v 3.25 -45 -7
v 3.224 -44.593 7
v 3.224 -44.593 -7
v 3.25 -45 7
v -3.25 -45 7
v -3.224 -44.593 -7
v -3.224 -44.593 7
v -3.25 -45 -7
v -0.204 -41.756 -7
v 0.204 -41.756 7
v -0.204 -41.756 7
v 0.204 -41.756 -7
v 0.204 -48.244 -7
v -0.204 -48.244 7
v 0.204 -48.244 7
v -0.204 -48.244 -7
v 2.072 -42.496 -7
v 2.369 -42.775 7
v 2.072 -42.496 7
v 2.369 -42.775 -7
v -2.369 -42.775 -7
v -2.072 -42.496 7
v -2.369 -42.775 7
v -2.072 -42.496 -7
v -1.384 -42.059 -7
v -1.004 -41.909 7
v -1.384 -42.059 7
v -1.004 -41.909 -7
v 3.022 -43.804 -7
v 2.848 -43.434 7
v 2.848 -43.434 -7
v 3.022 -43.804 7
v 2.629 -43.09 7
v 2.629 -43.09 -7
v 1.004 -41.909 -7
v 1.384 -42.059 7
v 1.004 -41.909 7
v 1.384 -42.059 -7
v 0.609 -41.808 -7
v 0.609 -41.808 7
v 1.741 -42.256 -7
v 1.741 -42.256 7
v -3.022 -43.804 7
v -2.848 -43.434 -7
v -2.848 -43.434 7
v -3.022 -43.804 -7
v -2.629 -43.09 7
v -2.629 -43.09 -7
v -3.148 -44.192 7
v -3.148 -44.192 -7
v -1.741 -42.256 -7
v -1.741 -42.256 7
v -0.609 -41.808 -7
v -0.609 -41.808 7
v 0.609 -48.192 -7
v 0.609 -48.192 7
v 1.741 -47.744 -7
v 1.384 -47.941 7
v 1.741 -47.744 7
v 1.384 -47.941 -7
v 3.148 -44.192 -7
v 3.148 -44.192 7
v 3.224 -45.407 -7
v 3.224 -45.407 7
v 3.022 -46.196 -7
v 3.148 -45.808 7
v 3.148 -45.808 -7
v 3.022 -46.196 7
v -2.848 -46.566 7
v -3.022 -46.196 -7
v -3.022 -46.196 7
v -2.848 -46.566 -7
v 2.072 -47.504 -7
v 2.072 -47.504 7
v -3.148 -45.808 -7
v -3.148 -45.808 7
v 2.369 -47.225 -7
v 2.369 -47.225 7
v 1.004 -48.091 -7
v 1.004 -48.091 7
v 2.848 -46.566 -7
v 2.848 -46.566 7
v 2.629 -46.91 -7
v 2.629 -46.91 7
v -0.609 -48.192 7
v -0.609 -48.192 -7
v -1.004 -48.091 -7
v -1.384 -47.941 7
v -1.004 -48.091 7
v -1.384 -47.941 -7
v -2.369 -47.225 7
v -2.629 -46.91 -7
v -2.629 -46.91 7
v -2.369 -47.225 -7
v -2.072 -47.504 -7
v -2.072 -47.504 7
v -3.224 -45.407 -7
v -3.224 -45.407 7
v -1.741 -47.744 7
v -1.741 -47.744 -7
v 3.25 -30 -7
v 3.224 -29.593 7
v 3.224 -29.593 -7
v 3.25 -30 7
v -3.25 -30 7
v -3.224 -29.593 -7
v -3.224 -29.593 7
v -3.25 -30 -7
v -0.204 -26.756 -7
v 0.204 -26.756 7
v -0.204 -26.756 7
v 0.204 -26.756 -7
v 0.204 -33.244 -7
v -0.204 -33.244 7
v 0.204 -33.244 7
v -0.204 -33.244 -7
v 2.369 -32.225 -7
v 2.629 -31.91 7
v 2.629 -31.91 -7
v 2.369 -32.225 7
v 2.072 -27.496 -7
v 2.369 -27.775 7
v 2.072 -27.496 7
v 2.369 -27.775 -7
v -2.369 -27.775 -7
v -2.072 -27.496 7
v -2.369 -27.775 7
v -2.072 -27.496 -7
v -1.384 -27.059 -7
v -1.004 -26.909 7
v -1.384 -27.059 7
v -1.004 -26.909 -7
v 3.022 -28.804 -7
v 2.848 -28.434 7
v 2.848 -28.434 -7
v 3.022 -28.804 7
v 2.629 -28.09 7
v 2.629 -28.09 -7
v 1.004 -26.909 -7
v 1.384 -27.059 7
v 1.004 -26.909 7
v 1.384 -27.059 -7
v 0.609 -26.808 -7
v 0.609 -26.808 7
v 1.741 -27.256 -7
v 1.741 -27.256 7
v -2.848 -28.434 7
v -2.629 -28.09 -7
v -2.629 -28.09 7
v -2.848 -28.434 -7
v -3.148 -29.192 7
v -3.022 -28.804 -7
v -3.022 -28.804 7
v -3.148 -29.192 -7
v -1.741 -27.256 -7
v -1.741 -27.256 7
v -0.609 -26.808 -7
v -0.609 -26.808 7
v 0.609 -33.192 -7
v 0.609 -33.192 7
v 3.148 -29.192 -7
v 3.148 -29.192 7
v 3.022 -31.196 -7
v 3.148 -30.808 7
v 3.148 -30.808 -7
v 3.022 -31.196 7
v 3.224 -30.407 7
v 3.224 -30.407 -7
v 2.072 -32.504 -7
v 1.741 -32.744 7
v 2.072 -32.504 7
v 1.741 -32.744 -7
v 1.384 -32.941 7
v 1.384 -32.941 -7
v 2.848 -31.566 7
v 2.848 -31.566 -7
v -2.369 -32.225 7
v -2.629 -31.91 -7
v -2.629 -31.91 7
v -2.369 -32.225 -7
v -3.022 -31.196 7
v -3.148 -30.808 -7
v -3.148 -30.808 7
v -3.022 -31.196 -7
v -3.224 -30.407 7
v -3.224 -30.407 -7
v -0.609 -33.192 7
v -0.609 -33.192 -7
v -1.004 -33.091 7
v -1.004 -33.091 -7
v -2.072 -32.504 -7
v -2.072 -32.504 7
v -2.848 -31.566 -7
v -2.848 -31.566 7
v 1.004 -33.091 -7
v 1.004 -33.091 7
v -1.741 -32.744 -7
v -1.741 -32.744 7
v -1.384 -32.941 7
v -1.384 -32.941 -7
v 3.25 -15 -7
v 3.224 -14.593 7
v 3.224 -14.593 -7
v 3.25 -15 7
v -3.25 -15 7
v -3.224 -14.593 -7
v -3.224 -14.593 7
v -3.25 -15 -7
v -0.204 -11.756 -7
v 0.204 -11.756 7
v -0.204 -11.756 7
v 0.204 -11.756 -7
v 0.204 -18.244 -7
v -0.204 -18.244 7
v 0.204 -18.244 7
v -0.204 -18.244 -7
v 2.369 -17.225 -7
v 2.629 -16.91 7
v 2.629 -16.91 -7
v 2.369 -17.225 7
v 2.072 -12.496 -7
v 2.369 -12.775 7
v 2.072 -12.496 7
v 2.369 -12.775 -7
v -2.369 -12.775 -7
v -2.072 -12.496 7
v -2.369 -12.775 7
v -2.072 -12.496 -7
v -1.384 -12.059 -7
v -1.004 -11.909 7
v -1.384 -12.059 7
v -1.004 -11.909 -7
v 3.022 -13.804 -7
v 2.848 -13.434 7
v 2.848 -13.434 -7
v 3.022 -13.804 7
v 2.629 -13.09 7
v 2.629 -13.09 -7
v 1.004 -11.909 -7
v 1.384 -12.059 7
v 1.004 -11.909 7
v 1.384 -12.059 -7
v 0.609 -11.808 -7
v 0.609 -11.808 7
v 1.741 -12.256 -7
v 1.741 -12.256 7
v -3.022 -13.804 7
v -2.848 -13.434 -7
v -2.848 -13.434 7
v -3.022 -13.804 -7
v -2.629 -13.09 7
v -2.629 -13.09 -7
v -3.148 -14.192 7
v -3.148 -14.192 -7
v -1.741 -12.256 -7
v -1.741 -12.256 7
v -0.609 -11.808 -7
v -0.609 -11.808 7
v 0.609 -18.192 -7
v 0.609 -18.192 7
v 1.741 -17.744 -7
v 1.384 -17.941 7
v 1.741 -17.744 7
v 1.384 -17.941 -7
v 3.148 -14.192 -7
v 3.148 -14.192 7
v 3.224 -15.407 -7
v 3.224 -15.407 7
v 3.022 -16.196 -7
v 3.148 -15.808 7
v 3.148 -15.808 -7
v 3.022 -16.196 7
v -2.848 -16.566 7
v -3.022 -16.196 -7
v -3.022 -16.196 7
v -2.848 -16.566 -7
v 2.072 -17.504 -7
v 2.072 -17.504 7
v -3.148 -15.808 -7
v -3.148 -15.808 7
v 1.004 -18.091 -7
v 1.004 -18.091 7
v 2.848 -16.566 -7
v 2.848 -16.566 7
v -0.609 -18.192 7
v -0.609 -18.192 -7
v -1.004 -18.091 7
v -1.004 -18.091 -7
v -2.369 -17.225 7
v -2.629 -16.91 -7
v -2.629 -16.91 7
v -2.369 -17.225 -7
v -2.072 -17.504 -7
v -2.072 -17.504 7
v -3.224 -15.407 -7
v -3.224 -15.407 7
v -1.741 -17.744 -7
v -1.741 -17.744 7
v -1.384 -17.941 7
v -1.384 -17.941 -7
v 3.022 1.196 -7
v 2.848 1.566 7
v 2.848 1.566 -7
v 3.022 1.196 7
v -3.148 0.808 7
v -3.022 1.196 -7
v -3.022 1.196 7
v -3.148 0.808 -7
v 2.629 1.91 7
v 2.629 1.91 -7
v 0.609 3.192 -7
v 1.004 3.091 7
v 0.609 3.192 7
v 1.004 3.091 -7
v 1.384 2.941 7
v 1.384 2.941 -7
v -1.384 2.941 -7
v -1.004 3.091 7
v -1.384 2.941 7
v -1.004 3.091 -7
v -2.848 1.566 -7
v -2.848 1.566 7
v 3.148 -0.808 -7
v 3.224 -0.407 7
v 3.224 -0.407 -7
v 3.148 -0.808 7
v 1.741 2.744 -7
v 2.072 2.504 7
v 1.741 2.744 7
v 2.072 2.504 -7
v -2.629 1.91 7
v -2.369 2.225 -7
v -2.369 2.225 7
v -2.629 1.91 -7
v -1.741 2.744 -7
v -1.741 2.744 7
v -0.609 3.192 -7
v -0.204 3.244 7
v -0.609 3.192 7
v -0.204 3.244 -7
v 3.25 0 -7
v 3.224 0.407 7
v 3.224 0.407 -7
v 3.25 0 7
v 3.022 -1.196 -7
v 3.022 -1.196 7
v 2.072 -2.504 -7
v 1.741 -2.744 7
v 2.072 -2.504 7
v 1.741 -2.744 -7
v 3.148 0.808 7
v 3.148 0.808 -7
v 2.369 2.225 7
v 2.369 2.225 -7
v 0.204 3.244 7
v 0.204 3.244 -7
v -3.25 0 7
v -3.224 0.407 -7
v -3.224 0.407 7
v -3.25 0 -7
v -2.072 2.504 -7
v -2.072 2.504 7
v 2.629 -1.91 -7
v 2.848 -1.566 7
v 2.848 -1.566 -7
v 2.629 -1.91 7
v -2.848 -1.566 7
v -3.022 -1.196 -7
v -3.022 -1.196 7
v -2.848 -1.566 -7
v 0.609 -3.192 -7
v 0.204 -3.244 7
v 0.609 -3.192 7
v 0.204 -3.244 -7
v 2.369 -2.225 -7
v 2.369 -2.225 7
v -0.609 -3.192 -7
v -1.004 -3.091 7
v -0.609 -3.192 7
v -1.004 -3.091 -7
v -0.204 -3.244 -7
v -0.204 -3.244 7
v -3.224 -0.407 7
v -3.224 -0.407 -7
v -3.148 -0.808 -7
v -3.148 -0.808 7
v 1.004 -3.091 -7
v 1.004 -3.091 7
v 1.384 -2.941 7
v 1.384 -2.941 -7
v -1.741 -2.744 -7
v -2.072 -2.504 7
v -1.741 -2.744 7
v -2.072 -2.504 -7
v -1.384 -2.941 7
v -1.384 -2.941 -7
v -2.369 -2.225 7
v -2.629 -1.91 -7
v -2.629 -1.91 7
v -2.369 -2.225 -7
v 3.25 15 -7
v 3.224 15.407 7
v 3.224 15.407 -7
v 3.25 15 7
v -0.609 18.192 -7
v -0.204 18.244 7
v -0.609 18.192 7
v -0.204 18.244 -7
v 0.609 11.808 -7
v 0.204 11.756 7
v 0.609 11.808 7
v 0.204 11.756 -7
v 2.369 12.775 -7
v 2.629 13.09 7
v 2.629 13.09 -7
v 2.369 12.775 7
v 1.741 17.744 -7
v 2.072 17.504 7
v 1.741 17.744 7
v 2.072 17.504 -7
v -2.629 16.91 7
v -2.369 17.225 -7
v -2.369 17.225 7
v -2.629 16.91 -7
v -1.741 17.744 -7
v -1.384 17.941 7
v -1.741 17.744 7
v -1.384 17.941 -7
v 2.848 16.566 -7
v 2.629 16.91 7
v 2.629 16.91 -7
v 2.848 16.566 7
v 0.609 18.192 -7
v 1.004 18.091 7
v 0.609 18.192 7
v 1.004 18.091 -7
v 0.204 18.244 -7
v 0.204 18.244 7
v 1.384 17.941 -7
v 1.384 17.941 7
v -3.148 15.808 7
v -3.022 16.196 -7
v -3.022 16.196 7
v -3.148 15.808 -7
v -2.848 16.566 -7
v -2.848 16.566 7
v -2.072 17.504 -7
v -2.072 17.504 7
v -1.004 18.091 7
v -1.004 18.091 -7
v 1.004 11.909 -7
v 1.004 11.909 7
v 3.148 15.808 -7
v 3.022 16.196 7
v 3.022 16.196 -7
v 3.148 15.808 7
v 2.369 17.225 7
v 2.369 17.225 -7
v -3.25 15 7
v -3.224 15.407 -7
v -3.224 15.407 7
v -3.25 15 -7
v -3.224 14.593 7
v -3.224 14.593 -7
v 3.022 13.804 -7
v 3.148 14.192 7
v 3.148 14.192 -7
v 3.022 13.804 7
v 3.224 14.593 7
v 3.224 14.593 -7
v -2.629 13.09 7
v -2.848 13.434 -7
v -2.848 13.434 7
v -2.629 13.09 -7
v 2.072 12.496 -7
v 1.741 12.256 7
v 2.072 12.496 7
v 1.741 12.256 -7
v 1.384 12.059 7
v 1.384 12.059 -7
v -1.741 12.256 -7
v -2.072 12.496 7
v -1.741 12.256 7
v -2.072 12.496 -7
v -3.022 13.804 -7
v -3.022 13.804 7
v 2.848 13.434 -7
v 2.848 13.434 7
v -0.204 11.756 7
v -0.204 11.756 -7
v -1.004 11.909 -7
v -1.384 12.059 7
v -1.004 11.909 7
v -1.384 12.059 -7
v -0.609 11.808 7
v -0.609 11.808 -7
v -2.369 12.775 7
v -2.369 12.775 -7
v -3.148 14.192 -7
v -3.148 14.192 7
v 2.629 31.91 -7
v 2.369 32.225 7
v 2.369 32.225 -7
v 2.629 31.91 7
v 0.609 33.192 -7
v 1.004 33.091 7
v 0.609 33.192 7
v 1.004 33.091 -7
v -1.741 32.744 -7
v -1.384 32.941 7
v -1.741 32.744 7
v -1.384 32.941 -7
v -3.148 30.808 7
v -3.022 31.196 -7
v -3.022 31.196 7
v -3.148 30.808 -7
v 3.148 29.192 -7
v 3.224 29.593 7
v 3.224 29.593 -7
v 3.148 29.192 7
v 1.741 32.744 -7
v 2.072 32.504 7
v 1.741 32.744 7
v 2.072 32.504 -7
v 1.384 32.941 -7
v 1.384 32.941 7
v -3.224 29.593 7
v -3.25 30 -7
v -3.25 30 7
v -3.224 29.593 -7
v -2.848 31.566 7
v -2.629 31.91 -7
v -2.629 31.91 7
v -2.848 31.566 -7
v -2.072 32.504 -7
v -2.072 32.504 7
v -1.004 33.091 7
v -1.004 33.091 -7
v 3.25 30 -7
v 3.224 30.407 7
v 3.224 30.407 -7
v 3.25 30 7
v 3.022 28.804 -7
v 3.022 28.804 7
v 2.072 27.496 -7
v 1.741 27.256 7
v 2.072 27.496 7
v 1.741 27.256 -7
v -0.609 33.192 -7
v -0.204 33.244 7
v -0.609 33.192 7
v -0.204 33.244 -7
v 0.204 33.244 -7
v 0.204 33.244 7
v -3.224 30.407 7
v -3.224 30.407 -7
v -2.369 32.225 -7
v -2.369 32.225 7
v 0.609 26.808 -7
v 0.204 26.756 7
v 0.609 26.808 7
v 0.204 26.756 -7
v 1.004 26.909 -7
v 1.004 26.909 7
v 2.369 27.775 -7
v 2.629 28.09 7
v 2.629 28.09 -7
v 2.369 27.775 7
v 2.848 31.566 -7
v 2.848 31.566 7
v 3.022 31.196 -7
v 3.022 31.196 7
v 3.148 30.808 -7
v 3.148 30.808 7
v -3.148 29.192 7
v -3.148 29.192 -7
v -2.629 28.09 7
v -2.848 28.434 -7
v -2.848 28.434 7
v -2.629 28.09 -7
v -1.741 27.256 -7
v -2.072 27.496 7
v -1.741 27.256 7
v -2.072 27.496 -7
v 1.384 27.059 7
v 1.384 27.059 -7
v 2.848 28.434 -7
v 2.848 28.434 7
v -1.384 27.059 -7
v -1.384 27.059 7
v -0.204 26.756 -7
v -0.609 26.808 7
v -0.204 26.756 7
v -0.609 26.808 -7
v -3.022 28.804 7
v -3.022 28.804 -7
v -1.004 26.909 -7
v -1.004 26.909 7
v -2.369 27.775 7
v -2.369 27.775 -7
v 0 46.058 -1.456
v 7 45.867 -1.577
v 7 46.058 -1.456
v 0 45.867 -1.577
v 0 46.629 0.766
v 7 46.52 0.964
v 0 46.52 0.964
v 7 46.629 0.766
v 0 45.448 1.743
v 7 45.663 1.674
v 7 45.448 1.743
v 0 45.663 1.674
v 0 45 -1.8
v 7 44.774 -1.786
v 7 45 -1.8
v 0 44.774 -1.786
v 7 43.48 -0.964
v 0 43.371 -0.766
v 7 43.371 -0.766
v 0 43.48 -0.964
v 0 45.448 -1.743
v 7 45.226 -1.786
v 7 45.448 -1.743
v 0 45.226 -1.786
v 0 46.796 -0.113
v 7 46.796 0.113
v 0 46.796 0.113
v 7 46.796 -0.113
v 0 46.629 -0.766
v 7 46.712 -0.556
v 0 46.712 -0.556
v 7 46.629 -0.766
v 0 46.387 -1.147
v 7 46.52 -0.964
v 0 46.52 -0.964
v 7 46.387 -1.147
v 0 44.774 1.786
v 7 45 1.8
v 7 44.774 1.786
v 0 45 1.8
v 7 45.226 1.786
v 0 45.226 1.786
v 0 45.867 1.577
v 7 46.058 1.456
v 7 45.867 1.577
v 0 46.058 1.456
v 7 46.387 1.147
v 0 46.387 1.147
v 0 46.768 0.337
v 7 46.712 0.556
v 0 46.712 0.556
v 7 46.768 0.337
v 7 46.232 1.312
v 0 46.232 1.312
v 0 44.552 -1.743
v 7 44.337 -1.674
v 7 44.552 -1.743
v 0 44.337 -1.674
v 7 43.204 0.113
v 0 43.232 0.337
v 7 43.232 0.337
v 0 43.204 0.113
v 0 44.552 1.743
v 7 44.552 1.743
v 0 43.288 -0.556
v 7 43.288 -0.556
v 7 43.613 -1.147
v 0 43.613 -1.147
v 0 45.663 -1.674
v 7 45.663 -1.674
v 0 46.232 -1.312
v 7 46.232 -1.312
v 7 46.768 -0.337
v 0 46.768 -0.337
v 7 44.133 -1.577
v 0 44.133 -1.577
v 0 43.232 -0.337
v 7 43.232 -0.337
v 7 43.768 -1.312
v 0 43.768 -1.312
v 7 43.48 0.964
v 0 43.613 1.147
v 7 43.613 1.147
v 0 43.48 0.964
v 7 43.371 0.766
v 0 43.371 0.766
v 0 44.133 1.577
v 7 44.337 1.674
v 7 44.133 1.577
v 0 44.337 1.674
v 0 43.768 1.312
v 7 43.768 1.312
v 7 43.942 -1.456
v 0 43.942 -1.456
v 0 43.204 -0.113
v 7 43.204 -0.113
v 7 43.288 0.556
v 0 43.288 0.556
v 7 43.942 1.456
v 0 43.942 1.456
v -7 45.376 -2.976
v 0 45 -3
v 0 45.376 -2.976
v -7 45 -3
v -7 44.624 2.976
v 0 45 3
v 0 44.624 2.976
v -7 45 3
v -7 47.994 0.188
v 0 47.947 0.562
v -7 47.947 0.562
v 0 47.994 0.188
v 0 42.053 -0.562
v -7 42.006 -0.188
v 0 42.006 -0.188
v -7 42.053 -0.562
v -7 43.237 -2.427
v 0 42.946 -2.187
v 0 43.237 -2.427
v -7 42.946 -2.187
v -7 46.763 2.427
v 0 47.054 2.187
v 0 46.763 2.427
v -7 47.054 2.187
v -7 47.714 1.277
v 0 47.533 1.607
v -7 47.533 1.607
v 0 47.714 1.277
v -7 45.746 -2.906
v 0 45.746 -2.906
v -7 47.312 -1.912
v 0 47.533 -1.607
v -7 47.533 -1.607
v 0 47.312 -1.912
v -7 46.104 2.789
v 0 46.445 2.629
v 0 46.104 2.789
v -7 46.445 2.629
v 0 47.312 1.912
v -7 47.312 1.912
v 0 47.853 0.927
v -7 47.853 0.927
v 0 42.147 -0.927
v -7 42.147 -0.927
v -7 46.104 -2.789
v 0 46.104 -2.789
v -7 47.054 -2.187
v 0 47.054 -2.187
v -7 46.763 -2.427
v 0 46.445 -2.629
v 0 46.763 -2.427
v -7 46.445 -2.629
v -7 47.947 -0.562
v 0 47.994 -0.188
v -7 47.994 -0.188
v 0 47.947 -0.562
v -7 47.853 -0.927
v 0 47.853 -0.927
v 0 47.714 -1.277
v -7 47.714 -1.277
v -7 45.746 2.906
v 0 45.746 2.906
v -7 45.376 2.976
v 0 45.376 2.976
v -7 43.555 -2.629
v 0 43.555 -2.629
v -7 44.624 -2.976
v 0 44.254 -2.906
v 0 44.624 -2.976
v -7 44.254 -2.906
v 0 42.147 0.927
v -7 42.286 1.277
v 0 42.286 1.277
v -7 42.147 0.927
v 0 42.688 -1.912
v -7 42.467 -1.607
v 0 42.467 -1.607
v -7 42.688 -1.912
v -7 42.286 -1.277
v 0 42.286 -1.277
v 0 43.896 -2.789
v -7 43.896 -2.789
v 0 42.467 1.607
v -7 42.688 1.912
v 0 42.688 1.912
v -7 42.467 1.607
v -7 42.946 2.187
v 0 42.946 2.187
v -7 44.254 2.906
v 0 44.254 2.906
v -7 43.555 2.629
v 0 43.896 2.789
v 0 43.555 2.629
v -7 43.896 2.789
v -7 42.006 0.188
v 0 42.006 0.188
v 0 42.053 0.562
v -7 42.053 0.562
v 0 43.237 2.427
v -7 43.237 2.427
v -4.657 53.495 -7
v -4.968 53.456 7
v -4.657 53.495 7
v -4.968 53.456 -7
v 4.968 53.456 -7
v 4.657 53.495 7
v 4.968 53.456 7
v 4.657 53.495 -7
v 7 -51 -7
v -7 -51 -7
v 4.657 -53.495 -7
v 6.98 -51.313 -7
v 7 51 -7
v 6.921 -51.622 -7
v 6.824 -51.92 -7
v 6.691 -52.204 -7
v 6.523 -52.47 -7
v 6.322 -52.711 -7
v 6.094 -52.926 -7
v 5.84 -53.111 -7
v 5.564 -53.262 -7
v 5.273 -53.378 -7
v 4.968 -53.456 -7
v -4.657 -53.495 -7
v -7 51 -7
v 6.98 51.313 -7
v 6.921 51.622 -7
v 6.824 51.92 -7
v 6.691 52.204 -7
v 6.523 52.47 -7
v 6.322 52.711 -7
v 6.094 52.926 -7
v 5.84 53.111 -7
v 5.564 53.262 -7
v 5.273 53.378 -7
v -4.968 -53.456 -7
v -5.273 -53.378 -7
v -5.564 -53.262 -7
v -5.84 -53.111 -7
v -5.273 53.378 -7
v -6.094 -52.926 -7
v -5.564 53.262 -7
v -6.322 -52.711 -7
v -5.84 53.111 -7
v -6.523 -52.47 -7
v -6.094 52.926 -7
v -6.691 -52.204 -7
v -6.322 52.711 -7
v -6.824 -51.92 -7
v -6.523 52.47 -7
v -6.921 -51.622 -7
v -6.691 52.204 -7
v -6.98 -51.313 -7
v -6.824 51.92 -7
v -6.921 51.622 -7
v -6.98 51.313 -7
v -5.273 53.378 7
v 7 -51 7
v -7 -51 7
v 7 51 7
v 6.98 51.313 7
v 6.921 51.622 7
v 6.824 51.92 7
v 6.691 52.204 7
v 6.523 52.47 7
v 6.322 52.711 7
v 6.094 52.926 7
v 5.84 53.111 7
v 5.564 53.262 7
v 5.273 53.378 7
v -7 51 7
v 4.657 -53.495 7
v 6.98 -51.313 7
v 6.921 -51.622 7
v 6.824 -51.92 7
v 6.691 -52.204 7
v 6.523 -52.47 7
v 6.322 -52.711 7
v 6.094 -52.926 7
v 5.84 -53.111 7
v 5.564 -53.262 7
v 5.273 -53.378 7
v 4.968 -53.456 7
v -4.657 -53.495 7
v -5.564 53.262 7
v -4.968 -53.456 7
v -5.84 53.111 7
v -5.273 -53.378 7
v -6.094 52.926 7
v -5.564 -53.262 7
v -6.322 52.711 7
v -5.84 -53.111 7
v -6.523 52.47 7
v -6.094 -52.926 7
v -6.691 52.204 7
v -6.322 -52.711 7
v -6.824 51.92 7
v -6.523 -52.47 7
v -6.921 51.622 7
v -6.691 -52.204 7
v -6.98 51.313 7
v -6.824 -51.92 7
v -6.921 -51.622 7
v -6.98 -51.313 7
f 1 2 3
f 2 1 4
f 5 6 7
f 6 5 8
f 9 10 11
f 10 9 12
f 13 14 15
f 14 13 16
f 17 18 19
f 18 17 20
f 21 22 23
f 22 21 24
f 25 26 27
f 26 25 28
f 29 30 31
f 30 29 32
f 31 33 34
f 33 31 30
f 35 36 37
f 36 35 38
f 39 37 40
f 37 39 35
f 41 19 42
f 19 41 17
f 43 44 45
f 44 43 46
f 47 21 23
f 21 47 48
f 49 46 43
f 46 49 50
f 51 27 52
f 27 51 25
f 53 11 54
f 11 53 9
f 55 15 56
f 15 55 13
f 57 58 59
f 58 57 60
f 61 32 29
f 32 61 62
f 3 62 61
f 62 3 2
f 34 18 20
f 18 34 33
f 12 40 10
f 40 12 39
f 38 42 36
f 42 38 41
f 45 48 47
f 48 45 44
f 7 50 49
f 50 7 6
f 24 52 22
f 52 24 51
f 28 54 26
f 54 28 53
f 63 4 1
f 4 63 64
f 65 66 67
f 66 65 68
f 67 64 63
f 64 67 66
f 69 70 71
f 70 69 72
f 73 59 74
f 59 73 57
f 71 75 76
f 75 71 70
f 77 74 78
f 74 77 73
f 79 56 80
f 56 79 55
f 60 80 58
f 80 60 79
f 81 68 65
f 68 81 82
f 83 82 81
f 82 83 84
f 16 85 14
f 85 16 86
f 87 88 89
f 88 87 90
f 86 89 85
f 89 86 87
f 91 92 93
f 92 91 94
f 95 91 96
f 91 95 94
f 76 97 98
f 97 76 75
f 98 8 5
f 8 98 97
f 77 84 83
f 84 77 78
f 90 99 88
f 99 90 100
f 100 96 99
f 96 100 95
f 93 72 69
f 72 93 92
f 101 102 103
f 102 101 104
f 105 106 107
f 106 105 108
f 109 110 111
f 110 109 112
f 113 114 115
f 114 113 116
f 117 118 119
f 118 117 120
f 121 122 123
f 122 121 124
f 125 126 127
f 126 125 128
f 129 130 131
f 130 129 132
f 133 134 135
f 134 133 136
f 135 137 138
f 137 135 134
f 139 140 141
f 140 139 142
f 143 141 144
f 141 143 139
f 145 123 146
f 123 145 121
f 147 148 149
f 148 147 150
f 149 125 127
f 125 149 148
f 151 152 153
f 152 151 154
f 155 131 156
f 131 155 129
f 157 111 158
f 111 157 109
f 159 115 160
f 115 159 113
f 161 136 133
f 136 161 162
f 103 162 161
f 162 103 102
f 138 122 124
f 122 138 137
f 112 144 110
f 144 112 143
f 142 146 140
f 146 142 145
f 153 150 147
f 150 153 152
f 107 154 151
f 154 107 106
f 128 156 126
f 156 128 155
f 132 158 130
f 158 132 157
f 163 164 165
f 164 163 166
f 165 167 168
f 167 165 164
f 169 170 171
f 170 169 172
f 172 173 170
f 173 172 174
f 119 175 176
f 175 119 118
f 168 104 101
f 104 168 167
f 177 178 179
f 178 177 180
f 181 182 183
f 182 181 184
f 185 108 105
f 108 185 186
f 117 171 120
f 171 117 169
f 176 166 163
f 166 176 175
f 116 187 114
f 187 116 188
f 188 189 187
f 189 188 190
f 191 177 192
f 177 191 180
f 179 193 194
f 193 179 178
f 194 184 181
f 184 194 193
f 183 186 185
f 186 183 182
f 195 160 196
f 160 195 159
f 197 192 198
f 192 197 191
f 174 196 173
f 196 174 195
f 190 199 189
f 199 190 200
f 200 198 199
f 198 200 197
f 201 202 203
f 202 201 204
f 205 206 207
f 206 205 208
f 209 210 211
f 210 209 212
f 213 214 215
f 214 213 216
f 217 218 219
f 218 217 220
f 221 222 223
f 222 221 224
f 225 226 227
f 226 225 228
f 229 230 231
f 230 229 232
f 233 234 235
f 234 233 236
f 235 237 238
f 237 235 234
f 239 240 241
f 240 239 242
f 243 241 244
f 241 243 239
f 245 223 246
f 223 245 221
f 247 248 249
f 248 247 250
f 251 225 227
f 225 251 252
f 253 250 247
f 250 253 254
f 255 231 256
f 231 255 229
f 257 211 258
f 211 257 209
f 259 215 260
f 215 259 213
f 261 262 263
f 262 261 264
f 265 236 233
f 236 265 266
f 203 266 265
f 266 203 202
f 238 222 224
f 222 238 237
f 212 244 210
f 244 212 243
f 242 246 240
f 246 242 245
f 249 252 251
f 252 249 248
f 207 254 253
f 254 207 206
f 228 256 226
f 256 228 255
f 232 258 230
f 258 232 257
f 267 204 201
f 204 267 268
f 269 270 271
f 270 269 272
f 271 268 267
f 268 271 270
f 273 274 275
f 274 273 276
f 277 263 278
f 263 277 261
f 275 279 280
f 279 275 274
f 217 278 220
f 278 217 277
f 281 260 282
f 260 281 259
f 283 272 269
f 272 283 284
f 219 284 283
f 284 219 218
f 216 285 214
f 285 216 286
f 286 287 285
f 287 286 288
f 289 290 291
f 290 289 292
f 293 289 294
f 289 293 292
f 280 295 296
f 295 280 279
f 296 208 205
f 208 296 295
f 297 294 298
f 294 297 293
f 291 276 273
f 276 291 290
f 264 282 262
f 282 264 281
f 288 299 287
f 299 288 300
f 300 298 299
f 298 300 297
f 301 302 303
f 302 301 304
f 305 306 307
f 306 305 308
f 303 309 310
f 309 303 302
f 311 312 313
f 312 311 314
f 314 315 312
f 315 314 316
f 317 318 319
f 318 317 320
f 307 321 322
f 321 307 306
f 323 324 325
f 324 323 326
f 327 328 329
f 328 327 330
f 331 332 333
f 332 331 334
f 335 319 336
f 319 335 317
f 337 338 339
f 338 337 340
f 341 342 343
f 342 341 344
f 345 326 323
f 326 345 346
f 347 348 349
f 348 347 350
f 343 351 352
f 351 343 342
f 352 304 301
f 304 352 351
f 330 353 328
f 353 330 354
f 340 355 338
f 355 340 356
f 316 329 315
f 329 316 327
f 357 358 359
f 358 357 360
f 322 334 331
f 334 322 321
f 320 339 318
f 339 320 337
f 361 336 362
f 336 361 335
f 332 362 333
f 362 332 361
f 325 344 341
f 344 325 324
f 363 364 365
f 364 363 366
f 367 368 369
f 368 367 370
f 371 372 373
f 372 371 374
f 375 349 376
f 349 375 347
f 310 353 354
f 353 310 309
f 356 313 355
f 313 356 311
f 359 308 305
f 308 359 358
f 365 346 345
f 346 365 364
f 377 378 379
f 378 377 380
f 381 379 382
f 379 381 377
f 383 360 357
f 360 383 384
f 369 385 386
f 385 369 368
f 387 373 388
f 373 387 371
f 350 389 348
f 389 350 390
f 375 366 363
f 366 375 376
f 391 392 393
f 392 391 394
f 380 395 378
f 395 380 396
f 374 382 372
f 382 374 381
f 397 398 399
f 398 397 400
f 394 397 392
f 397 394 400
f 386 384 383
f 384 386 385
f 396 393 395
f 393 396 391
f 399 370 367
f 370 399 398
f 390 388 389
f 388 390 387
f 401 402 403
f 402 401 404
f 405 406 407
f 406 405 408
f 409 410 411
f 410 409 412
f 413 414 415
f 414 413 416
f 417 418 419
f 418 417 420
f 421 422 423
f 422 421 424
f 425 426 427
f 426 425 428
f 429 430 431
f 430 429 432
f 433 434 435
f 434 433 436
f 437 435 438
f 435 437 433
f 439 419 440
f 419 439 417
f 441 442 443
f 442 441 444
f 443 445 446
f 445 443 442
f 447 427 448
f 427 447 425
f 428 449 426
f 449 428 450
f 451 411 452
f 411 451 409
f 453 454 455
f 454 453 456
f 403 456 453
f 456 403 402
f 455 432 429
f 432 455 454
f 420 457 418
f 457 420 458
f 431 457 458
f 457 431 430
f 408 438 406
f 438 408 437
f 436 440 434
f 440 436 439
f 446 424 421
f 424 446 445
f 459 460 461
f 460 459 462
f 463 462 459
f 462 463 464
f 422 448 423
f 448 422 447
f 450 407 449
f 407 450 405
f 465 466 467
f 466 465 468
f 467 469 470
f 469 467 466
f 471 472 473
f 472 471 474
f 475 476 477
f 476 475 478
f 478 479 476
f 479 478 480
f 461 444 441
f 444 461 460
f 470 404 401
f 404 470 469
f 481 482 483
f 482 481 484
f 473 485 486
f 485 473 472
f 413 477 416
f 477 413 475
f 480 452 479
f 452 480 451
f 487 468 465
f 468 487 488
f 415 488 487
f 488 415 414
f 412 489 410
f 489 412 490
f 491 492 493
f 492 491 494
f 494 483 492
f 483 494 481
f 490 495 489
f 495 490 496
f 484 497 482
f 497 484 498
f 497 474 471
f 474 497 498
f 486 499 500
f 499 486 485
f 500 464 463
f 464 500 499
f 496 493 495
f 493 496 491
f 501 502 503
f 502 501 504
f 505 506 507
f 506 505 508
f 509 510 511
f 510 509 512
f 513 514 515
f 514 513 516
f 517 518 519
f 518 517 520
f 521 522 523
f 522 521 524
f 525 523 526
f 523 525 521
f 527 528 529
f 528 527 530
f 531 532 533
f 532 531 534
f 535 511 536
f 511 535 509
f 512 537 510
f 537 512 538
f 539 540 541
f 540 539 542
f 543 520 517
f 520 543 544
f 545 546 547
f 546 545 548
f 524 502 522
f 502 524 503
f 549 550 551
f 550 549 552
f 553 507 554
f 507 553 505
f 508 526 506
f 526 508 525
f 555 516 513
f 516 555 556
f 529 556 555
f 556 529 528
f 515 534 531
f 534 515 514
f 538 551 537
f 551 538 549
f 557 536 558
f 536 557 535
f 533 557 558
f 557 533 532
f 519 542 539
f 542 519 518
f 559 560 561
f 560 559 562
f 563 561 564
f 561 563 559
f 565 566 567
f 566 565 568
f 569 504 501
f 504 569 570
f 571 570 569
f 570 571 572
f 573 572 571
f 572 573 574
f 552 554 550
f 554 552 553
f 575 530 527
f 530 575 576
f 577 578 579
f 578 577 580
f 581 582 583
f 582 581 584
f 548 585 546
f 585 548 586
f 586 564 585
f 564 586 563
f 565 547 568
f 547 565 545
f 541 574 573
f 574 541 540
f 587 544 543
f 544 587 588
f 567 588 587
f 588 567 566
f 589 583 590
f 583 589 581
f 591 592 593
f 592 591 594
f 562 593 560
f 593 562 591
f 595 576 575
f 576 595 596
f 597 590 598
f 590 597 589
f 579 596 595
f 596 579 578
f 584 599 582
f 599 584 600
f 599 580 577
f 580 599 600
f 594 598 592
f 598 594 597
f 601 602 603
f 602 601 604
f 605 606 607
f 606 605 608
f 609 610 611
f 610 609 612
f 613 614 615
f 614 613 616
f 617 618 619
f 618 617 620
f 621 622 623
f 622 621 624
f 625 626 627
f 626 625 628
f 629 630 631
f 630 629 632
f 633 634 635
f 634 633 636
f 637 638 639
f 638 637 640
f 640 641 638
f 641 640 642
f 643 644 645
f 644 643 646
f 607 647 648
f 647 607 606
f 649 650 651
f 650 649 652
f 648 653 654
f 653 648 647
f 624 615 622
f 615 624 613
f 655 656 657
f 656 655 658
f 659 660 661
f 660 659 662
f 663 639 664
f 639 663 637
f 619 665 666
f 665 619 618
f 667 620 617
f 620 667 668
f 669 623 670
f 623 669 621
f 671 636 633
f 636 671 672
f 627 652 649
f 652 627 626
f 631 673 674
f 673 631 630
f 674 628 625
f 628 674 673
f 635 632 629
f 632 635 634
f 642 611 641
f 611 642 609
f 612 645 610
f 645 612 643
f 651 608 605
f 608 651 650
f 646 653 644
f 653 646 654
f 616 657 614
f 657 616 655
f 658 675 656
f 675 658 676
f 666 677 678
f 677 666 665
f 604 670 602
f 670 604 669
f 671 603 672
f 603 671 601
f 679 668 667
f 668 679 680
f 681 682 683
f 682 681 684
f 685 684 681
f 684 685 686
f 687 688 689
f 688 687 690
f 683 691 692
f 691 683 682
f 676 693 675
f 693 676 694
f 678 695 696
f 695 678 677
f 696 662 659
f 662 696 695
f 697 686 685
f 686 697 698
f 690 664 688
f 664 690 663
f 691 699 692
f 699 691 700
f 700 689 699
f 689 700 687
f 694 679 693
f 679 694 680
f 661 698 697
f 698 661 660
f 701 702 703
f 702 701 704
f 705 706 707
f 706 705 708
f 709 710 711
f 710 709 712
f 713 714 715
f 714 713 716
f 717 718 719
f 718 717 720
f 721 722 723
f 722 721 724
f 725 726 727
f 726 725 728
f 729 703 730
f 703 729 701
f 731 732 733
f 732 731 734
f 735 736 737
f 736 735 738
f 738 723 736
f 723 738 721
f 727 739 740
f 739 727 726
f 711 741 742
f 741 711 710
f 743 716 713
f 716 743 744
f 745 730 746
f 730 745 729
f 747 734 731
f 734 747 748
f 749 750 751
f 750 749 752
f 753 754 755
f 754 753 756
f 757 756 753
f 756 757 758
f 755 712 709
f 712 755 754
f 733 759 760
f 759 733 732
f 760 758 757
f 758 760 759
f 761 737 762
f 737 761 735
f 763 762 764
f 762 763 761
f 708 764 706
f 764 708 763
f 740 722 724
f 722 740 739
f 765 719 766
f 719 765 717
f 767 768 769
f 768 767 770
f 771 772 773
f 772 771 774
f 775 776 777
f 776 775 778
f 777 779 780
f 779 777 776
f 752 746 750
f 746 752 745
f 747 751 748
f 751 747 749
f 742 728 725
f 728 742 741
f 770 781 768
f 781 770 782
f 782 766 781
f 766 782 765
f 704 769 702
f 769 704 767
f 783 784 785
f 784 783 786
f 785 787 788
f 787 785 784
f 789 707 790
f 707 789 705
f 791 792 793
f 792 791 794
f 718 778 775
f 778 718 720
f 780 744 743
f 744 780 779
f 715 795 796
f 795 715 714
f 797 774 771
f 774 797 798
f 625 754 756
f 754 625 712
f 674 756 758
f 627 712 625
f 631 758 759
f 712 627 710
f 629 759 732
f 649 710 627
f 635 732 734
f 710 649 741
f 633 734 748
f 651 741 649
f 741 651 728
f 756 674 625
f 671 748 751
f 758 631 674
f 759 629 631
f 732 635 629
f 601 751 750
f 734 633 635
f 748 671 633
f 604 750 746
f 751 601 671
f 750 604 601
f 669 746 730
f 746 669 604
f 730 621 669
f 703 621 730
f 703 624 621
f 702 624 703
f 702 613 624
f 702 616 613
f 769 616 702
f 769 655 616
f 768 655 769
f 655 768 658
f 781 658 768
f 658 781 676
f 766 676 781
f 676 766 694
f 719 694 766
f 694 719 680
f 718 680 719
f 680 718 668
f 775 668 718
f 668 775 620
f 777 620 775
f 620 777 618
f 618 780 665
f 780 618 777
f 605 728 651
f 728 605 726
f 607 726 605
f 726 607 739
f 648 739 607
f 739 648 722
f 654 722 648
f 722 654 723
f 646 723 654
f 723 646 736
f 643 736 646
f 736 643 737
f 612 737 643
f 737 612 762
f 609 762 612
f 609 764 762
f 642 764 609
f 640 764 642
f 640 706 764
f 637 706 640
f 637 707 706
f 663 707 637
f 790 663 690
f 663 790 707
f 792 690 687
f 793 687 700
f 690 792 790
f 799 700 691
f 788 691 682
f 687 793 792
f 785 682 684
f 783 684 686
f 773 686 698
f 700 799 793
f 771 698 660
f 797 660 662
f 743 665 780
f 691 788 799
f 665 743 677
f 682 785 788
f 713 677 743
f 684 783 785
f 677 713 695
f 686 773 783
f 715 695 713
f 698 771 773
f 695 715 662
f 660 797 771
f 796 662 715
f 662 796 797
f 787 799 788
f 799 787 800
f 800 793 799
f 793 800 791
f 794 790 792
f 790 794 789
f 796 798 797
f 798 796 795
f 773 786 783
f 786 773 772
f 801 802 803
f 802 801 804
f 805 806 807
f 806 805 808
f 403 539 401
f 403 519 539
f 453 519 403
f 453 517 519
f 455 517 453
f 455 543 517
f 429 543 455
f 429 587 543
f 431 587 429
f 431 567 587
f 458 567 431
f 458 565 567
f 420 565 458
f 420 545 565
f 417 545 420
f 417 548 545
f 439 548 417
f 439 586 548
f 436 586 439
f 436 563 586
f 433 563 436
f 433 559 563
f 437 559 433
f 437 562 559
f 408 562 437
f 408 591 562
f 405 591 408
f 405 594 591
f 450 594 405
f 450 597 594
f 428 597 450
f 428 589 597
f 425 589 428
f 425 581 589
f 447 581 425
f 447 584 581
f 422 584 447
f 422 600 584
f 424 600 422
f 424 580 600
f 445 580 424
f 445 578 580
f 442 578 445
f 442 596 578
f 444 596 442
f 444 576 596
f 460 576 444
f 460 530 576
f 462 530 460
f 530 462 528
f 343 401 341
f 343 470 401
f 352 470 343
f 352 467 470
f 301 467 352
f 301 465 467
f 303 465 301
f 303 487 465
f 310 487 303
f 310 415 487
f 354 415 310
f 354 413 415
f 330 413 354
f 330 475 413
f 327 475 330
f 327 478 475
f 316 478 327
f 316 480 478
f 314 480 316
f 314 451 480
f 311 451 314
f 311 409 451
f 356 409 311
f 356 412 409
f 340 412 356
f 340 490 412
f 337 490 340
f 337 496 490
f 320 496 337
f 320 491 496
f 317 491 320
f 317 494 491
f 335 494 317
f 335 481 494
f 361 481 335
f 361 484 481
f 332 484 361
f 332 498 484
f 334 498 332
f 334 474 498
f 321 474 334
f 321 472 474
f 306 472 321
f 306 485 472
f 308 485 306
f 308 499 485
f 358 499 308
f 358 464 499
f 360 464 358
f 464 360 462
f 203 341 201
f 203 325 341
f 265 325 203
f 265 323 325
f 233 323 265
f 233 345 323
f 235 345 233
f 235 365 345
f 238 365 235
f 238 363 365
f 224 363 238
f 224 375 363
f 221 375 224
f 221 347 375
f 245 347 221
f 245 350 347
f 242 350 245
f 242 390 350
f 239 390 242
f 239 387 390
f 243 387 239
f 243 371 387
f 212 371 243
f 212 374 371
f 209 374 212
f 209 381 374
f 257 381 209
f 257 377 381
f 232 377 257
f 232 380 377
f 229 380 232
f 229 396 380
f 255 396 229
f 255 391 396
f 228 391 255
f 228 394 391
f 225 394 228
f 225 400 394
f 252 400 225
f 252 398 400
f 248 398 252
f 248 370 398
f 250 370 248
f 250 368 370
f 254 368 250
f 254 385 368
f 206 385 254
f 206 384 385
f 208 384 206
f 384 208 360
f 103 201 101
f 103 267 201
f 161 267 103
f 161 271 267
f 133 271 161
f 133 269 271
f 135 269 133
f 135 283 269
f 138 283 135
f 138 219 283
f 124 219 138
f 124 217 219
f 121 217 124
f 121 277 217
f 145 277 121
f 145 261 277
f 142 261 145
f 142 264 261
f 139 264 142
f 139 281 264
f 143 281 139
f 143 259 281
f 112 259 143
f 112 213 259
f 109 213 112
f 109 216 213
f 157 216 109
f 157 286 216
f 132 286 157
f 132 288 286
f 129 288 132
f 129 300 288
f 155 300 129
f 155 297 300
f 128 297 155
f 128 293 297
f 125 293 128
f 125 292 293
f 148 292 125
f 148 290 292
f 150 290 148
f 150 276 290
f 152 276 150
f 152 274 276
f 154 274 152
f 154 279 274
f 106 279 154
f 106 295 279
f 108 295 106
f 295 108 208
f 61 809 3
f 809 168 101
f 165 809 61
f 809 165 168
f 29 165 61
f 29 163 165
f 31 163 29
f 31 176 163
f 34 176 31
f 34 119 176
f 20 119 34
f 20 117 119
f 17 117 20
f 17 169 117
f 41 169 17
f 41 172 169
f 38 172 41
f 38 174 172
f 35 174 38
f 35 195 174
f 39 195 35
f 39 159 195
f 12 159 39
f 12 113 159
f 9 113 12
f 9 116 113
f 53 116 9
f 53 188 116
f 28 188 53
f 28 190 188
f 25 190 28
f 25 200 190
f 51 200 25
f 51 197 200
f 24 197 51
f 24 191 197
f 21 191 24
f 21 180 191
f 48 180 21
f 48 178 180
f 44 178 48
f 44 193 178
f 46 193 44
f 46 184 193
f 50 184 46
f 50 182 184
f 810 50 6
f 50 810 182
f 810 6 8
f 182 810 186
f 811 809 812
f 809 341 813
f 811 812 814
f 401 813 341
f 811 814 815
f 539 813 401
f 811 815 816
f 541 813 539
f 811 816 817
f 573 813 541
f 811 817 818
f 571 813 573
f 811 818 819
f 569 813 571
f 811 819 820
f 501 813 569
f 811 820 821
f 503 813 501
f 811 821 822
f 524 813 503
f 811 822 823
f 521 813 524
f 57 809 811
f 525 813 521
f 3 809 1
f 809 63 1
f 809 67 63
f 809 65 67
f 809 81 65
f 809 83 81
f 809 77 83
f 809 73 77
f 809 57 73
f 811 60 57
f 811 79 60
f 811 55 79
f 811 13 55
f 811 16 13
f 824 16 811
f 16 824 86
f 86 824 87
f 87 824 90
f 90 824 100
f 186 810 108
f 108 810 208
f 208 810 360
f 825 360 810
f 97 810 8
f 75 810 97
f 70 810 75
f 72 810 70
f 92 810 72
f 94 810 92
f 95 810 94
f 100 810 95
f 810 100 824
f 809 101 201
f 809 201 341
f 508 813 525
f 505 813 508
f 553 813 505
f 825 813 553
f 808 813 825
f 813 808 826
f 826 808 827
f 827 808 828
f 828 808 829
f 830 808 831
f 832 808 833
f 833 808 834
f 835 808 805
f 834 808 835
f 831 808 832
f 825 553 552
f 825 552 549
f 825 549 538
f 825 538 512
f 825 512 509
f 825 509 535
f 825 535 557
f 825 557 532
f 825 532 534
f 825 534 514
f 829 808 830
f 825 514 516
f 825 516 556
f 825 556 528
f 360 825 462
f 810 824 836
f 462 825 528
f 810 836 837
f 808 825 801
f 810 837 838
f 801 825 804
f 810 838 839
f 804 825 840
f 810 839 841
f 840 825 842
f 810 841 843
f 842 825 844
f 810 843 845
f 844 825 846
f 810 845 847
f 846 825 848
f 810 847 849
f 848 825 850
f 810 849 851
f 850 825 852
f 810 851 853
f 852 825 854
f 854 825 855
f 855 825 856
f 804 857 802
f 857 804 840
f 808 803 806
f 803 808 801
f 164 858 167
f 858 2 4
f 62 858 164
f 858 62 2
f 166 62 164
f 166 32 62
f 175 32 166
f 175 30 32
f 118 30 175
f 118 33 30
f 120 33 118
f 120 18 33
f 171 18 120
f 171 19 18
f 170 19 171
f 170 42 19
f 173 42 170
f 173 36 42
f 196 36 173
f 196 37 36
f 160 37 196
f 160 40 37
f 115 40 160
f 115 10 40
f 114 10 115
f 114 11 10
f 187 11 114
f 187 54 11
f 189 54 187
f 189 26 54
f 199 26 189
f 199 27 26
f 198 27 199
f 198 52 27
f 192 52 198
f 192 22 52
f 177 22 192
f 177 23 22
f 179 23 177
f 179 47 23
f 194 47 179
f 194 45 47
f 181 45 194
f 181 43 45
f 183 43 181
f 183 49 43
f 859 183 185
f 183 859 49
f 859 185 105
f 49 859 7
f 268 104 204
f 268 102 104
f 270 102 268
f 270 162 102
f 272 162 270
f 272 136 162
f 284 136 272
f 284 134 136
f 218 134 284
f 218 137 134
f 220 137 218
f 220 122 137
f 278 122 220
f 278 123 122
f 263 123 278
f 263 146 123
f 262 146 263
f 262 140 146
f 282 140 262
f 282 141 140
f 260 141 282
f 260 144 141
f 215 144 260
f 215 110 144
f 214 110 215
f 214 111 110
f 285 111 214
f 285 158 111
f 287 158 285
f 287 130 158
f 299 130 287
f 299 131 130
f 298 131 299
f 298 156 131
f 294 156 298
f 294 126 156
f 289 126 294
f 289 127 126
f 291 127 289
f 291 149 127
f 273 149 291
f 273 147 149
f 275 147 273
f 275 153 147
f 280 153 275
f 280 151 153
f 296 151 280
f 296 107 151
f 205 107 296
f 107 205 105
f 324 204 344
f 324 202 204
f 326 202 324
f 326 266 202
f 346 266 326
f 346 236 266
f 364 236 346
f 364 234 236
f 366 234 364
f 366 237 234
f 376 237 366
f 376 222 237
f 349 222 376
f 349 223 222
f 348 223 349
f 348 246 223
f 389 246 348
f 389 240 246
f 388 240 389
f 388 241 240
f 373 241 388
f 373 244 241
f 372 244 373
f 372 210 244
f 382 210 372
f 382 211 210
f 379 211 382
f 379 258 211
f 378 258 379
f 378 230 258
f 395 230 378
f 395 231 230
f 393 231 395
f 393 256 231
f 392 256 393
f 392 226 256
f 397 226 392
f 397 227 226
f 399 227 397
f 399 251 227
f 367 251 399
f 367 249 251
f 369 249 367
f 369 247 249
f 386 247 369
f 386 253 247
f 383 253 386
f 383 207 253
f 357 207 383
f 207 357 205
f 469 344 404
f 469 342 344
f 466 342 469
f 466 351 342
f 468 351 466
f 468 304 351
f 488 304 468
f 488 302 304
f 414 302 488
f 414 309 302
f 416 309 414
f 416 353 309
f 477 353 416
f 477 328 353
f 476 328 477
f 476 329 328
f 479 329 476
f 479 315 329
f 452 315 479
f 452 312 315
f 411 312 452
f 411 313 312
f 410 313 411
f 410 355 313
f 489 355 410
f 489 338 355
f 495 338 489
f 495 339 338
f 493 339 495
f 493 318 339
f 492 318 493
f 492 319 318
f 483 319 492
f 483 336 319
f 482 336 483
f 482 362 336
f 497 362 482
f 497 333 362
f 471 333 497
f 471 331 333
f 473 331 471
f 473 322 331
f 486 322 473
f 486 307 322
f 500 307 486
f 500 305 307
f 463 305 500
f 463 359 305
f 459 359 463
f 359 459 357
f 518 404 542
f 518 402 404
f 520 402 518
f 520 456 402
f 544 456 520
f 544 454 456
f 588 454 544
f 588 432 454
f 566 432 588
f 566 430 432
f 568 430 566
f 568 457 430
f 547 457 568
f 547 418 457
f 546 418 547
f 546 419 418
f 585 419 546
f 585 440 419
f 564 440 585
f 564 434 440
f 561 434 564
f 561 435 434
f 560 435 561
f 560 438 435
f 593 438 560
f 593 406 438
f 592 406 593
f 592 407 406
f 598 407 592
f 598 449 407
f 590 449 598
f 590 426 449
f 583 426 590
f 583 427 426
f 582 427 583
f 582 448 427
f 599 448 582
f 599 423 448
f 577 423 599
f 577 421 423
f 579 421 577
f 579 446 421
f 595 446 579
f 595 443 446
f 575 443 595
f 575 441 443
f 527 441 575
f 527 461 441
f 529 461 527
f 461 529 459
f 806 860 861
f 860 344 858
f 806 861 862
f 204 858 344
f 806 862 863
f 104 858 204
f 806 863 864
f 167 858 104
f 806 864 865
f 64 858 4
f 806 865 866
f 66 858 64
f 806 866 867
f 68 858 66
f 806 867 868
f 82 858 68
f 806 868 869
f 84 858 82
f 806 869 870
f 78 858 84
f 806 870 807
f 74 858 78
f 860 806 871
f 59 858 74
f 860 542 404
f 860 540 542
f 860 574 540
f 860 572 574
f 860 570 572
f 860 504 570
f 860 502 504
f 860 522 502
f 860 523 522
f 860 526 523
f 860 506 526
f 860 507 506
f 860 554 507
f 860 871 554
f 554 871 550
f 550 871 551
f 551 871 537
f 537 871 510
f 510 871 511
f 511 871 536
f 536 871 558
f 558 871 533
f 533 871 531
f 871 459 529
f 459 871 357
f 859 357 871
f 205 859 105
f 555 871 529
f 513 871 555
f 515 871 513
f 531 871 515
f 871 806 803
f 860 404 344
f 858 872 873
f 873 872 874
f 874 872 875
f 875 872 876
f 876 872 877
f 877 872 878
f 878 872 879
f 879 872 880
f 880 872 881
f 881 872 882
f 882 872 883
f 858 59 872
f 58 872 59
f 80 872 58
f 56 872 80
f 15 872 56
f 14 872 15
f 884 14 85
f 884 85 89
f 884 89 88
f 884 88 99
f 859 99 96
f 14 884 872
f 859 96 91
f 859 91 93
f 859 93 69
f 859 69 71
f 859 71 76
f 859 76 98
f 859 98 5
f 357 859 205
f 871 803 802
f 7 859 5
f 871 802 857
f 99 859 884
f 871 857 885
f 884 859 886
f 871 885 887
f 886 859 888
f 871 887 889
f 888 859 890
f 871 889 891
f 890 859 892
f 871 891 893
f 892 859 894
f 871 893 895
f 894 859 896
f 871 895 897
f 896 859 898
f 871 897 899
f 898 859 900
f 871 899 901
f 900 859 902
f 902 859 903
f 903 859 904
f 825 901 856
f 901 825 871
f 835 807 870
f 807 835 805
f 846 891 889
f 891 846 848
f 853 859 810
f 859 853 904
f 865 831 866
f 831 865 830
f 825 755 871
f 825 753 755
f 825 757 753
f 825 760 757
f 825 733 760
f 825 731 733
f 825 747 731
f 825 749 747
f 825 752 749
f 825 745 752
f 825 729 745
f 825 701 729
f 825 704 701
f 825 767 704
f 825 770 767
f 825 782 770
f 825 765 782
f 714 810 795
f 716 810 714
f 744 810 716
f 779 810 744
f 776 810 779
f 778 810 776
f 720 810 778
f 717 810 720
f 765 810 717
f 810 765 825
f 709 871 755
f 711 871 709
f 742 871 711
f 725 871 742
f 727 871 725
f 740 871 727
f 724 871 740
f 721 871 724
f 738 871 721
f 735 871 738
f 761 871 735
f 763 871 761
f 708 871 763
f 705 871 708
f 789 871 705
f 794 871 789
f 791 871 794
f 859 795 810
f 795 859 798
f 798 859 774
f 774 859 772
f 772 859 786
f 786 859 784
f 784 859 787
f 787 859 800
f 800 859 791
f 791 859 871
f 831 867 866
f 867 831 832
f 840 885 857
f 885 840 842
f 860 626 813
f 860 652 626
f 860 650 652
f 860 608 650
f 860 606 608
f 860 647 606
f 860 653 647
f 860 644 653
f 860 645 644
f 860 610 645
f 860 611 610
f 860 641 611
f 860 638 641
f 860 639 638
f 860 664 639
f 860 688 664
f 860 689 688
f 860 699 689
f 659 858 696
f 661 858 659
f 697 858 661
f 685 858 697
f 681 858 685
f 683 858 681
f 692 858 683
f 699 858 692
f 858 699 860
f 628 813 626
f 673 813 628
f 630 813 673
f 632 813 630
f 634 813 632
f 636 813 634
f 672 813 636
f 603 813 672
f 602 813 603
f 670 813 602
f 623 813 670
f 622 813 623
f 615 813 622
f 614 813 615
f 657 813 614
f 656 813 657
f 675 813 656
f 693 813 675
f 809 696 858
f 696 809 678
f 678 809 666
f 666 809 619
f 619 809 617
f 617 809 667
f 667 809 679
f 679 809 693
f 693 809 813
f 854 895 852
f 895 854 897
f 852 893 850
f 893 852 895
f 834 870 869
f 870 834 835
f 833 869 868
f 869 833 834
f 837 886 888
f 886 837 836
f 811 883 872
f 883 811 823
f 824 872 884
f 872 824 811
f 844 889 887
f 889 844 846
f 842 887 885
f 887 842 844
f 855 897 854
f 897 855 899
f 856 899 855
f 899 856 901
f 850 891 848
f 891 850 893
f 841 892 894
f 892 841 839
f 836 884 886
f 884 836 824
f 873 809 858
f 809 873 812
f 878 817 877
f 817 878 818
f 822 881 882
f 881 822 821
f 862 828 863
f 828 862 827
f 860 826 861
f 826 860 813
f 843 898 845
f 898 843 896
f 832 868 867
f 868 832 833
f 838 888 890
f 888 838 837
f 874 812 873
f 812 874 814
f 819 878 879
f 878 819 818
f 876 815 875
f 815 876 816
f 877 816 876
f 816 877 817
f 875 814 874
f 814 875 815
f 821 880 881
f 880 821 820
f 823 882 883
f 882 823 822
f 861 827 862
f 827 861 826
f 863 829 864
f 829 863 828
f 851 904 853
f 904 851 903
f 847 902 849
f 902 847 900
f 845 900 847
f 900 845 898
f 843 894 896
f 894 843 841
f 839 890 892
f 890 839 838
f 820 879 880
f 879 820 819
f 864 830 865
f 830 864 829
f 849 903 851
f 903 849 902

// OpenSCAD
$fn = 50;


difference() {
	union() {
		translate(v = [0, 0, -7.0000000000]) {
			hull() {
				translate(v = [-4.5000000000, 51.0000000000, 0]) {
					cylinder(h = 14, r = 2.5000000000);
				}
				translate(v = [4.5000000000, 51.0000000000, 0]) {
					cylinder(h = 14, r = 2.5000000000);
				}
				translate(v = [-4.5000000000, -51.0000000000, 0]) {
					cylinder(h = 14, r = 2.5000000000);
				}
				translate(v = [4.5000000000, -51.0000000000, 0]) {
					cylinder(h = 14, r = 2.5000000000);
				}
			}
		}
	}
	union() {
		translate(v = [0.0000000000, -45.0000000000, -50.0000000000]) {
			cylinder(h = 100, r = 3.2500000000);
		}
		translate(v = [0.0000000000, -30.0000000000, -50.0000000000]) {
			cylinder(h = 100, r = 3.2500000000);
		}
		translate(v = [0.0000000000, -15.0000000000, -50.0000000000]) {
			cylinder(h = 100, r = 3.2500000000);
		}
		translate(v = [0.0000000000, 0.0000000000, -50.0000000000]) {
			cylinder(h = 100, r = 3.2500000000);
		}
		translate(v = [0.0000000000, 15.0000000000, -50.0000000000]) {
			cylinder(h = 100, r = 3.2500000000);
		}
		translate(v = [0.0000000000, 30.0000000000, -50.0000000000]) {
			cylinder(h = 100, r = 3.2500000000);
		}
		translate(v = [-50, 45, 0]) {
			rotate(a = [0, 90, 0]) {
				cylinder(h = 100, r = 1.8000000000);
			}
		}
		translate(v = [-100, 45, 0]) {
			rotate(a = [0, 90, 0]) {
				cylinder(h = 100, r = 3.0000000000);
			}
		}
	}
}
